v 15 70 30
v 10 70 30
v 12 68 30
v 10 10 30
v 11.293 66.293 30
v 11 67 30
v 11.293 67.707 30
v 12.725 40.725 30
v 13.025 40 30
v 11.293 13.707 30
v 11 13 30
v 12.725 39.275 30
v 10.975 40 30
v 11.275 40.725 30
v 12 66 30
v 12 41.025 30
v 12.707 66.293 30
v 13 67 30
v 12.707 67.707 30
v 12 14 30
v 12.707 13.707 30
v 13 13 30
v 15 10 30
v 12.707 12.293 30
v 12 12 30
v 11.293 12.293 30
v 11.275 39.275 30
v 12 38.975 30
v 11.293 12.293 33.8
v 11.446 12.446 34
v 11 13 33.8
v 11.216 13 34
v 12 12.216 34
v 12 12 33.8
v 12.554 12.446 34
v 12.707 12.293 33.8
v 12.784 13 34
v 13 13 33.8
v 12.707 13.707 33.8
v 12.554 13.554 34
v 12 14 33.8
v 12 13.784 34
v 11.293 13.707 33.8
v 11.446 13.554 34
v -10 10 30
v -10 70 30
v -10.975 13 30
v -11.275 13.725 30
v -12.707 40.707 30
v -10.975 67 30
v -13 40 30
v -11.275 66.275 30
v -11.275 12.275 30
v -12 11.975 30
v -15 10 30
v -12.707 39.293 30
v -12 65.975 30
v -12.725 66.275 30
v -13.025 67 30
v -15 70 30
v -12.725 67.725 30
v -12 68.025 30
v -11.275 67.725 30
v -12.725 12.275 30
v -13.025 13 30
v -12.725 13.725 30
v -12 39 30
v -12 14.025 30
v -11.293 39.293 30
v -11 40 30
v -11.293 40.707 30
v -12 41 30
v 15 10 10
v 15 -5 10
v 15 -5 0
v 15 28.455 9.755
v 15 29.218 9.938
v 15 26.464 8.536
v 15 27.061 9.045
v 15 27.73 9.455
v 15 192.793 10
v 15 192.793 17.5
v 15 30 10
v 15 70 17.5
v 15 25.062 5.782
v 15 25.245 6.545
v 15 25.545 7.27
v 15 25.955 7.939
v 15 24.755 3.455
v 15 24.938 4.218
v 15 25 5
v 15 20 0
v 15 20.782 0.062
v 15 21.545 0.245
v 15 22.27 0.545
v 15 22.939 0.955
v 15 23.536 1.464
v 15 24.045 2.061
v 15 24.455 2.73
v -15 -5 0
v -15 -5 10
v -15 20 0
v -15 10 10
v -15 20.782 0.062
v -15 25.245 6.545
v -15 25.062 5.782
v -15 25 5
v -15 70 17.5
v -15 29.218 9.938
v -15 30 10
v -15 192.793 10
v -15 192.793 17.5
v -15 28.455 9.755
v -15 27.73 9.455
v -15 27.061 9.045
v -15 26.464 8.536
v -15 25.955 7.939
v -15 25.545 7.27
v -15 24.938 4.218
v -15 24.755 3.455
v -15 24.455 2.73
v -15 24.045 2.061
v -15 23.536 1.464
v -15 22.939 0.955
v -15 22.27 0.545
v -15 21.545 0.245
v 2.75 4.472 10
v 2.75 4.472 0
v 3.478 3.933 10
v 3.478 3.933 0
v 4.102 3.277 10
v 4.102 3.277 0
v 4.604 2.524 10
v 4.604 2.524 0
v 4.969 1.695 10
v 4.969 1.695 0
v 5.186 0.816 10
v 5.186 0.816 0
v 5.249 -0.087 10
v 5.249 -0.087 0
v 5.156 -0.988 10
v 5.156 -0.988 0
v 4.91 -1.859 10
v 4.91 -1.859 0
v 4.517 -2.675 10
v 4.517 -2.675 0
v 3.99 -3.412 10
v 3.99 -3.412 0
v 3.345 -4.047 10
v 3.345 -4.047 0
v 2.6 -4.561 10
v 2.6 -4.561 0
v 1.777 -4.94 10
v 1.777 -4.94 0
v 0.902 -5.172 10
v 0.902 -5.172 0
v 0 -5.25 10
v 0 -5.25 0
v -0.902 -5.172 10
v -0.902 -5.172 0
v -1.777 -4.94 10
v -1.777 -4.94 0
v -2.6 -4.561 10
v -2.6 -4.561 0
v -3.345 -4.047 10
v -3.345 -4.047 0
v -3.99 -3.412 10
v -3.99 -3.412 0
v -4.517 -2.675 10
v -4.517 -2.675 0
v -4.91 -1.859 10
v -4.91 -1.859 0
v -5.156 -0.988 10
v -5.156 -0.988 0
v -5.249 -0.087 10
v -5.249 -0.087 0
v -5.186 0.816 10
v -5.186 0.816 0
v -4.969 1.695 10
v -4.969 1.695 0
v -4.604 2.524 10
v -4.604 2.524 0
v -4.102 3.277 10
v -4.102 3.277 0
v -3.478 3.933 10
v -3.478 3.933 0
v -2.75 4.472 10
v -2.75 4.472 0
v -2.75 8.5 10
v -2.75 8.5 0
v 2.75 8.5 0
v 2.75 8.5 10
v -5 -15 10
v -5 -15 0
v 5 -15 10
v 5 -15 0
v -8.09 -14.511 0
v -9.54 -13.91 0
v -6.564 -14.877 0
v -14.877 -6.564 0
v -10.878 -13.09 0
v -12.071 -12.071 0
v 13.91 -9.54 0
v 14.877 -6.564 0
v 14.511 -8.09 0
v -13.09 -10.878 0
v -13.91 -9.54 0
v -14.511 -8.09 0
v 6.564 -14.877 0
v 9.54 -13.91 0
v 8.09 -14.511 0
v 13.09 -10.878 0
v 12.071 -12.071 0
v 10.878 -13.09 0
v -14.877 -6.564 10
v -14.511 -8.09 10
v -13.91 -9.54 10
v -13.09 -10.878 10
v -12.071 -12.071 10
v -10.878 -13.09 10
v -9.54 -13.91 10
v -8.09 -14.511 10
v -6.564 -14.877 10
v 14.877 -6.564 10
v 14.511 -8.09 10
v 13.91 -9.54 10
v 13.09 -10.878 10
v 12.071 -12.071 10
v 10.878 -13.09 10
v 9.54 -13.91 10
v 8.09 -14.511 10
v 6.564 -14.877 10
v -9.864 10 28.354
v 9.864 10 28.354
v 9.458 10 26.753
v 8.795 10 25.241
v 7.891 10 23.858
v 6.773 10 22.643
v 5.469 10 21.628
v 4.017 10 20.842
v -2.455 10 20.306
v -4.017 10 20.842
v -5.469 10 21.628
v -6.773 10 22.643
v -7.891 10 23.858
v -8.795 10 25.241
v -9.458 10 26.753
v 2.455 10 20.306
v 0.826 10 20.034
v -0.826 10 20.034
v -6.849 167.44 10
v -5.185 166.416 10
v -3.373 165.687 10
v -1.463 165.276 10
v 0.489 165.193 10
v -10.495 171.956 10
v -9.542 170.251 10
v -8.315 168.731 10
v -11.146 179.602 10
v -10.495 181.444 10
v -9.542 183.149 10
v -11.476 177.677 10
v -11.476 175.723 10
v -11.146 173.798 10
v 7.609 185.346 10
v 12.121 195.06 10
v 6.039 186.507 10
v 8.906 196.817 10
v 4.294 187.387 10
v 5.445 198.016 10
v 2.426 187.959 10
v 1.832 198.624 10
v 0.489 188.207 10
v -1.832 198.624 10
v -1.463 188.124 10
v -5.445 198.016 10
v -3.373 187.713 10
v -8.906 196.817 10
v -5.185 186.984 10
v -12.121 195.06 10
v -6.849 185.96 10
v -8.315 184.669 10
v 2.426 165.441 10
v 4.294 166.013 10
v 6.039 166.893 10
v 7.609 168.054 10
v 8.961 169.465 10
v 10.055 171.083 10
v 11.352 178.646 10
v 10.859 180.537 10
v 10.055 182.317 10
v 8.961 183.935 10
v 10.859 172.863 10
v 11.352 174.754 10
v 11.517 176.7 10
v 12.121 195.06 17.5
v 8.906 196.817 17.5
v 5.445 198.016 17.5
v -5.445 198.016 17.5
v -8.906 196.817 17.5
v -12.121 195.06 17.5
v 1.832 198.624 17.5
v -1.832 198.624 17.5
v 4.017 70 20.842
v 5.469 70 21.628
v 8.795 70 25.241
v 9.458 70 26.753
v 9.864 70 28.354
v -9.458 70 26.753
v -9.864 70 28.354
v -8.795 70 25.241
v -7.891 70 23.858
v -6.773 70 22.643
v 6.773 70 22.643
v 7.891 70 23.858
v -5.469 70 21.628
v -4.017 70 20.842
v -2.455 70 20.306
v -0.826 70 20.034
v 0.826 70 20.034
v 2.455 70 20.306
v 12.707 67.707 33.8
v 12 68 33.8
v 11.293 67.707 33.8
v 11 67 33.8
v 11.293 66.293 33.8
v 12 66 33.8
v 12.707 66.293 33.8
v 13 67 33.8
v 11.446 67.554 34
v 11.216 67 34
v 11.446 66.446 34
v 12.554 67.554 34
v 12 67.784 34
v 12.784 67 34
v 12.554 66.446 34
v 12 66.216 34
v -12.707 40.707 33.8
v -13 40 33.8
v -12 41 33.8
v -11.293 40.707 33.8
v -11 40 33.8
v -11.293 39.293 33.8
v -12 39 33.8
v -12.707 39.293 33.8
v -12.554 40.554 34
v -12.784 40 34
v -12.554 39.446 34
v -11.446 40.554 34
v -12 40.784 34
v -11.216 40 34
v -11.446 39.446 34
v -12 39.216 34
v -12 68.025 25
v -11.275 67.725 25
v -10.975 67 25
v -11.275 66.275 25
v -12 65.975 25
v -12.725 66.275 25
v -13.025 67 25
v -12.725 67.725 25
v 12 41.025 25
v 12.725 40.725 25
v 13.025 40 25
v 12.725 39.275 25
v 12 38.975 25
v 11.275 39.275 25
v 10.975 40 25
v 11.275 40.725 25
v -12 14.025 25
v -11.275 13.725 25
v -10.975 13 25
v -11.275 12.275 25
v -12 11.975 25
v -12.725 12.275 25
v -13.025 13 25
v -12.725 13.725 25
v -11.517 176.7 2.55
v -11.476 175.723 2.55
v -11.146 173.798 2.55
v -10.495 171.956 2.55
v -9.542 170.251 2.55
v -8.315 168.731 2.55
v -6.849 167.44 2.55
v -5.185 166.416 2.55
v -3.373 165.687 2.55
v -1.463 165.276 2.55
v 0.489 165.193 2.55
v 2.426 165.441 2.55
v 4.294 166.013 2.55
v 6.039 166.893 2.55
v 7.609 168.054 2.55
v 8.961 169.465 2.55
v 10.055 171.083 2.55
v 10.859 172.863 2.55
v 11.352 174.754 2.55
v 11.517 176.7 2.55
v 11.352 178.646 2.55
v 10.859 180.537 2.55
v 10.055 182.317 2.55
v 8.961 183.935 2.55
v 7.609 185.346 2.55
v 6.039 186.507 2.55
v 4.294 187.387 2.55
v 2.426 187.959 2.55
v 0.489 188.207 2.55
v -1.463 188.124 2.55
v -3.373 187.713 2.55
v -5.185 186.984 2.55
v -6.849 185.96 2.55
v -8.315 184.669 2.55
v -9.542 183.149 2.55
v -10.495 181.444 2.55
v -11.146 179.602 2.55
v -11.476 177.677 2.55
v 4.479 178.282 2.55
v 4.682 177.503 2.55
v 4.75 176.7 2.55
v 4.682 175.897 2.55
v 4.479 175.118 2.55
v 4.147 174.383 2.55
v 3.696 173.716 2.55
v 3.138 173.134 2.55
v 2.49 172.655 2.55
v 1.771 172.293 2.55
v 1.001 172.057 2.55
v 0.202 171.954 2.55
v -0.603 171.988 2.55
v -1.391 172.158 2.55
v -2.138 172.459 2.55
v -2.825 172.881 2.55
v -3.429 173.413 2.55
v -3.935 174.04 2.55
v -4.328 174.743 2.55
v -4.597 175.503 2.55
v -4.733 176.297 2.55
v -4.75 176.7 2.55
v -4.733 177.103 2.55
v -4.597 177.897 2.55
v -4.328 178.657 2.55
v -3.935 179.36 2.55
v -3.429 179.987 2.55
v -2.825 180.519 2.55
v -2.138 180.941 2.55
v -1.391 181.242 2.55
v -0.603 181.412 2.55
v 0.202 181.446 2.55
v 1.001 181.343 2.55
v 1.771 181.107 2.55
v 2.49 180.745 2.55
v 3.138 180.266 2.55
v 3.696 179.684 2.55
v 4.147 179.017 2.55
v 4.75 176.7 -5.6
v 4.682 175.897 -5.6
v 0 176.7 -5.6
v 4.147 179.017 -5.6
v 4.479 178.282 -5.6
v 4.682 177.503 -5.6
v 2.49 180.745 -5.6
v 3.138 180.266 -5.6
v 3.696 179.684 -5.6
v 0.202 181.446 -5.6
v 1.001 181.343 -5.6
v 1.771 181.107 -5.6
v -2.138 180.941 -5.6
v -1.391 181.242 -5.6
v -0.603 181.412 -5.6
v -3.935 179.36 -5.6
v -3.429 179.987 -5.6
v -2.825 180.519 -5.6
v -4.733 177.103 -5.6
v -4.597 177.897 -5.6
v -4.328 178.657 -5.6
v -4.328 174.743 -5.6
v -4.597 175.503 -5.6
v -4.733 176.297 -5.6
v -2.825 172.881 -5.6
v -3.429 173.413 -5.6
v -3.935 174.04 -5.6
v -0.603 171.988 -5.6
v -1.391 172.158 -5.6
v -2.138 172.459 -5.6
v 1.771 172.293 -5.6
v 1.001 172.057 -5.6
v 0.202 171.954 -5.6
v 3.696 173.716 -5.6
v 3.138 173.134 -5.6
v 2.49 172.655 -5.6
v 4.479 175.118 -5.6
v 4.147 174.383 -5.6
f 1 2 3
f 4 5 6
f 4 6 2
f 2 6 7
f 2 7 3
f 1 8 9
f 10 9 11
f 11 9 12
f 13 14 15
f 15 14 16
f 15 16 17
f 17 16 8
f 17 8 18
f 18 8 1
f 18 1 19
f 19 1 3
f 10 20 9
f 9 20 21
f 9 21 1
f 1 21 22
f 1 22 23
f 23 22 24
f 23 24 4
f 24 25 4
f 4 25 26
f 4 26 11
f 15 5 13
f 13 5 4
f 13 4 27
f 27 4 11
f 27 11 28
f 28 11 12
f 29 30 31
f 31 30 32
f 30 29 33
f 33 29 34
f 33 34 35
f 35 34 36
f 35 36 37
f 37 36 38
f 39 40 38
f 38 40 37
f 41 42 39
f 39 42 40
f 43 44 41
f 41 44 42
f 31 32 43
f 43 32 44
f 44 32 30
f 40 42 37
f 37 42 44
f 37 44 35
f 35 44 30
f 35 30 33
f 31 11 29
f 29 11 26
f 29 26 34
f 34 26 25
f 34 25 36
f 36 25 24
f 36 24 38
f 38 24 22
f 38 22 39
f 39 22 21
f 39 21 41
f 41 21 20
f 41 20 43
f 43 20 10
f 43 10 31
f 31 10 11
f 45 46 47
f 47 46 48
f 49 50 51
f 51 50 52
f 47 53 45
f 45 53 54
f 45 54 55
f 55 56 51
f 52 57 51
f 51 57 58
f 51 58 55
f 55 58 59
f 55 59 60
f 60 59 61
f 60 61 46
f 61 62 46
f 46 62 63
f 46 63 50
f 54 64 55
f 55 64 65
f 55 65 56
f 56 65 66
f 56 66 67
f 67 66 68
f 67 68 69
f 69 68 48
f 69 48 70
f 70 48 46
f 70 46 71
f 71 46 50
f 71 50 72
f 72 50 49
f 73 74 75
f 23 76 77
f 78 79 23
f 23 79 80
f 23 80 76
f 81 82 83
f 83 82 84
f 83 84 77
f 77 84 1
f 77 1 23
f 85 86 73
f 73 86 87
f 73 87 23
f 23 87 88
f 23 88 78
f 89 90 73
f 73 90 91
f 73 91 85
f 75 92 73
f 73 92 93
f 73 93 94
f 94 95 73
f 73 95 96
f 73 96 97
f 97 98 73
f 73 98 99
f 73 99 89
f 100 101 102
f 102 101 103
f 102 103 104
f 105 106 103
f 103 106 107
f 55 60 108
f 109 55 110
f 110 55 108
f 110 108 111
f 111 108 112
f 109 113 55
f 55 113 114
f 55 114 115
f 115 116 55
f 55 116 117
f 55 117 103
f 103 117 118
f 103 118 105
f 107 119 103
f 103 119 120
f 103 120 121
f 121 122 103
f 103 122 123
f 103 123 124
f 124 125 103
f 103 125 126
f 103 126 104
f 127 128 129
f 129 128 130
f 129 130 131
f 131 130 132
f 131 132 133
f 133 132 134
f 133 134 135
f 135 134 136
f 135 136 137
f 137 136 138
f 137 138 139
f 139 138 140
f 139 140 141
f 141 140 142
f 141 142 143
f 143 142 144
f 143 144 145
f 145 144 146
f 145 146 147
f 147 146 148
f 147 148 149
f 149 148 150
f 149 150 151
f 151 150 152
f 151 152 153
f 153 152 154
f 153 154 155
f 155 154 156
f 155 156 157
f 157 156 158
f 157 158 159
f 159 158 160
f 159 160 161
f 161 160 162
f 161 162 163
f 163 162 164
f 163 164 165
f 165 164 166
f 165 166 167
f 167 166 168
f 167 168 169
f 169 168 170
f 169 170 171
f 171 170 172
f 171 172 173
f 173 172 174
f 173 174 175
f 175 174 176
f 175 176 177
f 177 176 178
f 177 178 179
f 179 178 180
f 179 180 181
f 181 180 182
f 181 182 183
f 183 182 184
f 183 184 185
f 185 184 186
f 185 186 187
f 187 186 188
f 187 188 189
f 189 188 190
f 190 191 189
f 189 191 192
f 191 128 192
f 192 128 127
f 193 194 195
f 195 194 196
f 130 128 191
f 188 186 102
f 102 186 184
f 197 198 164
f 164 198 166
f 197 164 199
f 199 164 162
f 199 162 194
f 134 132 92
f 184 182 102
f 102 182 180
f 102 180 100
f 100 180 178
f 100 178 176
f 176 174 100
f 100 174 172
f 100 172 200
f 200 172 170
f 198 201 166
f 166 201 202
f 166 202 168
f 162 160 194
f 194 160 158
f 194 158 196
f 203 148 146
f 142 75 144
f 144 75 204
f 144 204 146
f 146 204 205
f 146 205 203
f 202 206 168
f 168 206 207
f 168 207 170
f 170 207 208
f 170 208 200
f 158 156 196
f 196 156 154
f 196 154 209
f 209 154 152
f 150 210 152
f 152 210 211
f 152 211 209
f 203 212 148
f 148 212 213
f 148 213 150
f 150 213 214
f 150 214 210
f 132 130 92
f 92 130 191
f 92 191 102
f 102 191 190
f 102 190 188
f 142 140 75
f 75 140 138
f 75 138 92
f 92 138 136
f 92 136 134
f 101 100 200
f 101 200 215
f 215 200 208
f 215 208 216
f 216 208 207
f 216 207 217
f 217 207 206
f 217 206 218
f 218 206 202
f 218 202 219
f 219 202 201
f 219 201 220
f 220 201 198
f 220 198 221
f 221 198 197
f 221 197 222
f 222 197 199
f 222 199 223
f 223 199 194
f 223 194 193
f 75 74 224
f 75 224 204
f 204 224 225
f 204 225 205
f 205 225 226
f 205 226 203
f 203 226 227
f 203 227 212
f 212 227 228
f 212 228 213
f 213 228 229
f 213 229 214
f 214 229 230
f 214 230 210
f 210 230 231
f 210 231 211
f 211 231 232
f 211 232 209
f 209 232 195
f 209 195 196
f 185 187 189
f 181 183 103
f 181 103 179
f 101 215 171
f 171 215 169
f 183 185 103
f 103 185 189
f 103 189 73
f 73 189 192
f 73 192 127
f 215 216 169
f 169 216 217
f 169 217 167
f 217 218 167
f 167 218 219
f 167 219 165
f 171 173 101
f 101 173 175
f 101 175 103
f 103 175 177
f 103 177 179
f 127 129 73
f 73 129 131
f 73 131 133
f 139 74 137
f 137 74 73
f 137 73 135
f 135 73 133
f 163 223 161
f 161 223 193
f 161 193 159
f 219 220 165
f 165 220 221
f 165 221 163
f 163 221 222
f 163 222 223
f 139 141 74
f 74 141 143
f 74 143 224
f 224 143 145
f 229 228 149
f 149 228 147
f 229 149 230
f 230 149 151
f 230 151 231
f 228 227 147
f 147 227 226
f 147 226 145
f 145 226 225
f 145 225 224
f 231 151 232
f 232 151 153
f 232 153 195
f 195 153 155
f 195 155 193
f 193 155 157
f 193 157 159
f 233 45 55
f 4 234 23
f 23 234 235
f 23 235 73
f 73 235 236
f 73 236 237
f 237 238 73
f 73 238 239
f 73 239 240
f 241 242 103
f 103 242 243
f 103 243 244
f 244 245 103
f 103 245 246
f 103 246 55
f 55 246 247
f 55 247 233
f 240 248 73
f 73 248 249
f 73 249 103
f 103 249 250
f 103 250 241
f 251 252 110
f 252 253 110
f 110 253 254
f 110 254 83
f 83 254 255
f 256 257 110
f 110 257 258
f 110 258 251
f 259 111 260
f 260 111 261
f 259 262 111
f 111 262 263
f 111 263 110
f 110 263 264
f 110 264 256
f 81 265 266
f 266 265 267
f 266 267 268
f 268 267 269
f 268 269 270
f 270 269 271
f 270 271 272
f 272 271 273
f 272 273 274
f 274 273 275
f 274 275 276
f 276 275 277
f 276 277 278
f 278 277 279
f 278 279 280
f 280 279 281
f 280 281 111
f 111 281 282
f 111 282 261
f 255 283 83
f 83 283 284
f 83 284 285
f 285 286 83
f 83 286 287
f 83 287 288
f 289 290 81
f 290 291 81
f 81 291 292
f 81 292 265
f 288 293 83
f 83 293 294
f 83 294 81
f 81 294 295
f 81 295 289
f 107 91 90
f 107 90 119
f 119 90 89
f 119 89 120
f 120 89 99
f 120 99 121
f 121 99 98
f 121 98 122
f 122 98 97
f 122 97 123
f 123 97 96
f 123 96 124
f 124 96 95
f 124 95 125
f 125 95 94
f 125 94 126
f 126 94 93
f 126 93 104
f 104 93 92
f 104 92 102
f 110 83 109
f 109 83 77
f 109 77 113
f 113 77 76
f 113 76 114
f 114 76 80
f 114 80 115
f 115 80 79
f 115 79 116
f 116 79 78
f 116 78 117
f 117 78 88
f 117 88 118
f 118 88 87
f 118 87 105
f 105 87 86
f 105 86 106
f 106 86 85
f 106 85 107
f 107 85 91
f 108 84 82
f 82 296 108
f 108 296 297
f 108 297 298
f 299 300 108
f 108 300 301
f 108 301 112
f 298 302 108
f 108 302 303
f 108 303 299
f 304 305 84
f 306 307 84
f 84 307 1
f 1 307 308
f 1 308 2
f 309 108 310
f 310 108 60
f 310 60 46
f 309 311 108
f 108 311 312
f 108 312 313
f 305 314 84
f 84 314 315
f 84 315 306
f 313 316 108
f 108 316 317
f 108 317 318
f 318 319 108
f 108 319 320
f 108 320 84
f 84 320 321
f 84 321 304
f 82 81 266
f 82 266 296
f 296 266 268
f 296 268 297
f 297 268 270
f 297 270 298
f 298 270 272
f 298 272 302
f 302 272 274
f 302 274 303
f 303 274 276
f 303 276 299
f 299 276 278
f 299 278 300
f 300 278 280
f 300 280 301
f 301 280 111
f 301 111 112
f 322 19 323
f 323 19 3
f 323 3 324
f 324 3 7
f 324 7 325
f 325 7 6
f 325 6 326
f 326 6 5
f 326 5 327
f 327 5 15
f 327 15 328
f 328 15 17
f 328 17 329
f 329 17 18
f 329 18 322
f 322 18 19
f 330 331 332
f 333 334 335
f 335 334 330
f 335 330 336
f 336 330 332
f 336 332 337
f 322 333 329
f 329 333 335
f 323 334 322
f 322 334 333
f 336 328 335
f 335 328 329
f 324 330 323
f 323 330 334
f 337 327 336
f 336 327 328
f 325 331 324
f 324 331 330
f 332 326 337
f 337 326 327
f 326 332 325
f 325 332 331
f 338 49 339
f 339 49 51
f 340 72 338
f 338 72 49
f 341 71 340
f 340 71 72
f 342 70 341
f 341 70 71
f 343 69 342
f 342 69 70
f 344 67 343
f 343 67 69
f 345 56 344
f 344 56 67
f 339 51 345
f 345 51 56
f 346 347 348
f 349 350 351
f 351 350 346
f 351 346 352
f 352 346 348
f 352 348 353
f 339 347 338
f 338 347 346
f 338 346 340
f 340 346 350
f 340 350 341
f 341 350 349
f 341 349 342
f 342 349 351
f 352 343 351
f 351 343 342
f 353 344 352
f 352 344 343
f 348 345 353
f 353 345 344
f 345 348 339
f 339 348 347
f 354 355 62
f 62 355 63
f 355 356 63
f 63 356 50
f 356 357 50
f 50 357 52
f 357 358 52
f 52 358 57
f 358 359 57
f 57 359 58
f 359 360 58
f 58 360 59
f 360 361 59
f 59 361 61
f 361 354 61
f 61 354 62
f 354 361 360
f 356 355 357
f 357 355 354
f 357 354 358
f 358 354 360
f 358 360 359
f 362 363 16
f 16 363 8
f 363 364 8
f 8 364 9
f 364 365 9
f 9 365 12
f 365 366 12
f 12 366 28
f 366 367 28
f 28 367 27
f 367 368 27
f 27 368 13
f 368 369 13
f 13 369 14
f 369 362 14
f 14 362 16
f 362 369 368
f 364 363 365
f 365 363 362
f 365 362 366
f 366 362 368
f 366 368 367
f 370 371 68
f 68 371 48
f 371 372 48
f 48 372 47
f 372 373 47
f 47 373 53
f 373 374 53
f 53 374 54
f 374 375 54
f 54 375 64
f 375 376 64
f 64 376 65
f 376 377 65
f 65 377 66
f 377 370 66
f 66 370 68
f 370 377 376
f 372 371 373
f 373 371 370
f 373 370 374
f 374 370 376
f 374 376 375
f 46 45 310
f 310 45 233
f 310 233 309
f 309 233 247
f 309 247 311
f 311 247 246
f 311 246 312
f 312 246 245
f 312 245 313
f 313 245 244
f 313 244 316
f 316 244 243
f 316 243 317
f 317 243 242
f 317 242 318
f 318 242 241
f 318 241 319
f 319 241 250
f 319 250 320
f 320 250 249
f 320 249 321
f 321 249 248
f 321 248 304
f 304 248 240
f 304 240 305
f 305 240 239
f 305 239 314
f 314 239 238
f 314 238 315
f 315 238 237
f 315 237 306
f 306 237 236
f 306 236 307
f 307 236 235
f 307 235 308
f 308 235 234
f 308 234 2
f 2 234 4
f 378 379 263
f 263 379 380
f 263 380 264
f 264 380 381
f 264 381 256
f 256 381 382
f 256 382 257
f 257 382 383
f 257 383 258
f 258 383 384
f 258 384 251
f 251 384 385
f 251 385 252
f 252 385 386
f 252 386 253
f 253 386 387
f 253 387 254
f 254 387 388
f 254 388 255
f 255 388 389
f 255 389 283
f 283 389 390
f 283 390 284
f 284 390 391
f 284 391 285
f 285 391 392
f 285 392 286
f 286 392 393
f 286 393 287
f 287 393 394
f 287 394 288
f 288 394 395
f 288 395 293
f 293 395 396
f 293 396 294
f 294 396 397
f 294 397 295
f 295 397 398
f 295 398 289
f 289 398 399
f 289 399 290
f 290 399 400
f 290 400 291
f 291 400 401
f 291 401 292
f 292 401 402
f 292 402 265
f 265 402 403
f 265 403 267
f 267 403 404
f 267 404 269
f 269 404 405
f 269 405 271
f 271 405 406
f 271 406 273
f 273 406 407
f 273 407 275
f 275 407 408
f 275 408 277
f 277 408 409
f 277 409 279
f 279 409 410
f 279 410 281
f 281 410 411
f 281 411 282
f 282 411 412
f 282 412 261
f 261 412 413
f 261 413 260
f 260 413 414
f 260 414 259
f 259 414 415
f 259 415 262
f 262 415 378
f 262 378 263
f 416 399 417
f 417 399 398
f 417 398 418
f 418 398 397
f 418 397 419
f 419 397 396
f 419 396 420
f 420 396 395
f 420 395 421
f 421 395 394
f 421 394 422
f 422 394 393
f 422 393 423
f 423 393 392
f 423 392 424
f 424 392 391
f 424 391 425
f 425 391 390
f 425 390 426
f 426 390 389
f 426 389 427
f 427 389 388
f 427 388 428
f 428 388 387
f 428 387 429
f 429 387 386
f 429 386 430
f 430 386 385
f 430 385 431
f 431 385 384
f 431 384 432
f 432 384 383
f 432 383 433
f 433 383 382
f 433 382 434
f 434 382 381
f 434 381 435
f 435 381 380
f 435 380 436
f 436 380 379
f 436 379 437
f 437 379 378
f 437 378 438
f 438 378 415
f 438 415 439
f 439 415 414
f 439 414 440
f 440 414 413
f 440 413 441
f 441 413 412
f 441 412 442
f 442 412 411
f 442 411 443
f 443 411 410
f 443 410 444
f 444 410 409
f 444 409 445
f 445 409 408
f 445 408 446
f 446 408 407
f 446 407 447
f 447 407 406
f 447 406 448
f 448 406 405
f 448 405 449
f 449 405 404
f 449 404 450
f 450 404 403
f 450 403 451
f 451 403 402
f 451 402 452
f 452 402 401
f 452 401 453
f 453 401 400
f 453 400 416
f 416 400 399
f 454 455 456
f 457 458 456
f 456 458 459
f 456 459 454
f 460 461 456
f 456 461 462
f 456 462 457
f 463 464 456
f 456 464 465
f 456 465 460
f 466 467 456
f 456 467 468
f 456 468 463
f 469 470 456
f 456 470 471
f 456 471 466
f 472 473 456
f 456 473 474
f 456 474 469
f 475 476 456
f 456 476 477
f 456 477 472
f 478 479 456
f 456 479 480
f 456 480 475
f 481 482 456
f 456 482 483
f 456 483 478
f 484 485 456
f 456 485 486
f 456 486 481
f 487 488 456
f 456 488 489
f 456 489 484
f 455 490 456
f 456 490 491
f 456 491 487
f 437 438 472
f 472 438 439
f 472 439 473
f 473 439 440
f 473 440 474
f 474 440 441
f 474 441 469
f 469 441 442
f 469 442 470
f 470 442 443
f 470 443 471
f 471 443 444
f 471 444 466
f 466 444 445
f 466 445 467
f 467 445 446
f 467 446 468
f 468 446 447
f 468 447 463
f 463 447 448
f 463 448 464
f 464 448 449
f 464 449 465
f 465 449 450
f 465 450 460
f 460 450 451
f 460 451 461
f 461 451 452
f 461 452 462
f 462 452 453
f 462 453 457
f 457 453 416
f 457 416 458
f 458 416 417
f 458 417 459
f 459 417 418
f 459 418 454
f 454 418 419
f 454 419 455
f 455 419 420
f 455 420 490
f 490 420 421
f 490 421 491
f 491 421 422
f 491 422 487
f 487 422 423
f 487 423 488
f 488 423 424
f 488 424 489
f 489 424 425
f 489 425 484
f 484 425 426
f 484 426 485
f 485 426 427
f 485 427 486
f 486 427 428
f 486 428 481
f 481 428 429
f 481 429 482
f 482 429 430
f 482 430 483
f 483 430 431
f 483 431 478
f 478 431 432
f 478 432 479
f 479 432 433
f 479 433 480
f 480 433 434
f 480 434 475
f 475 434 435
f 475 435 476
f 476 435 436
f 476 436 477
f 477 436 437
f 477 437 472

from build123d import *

# Parameters (mm, degrees)
SKETCH2_W                  = 30
SKETCH2_H                  = 30
BOSS_EXTRUDE1_DEPTH        = 60
FILLET1_R                  = 10
SKETCH3_W                  = 40
SKETCH3_H                  = 25
CUT_EXTRUDE1_DEPTH         = 69.738635424
SKETCH6_W                  = 30
SKETCH6_H                  = 40
BOSS_EXTRUDE2_DEPTH        = 125
SKETCH7_W                  = 30
SKETCH7_H                  = 10
BOSS_EXTRUDE3_DEPTH        = 10
FILLET2_START              = -16
FILLET2_DEPTH              = 32
FILLET2_START_2            = -15
FILLET2_2_DEPTH            = 30
SKETCH8_W                  = 25
SKETCH8_H                  = 70
CUT_EXTRUDE2_DEPTH         = 156.241746963
SKETCH12_W                 = 30
SKETCH12_H                 = 7.5
BOSS_EXTRUDE4_DEPTH        = 65
SKETCH13_W                 = 20
SKETCH13_H                 = 54
CUT_EXTRUDE6_DEPTH         = 6
SKETCH20_R                 = 4.75
AXIS_BASE_DEPTH            = 49.6
CUT_EXTRUDE8_DEPTH         = 212.541958013
CUT_EXTRUDE8_DEPTH_BACK    = 212.541958013
SKETCH19_R                 = 2.5
SKETCH19_W                 = 20
SKETCH19_H                 = 42
CUT_EXTRUDE7_DEPTH         = 26.5
MAKE_HALF_DEPTH            = 225.175347112
ONE_MALE_JACK_DEPTH        = 4
CHAMFER1_SIZE              = 0.2
LPATTERN1_COUNT            = 2
LPATTERN1_PITCH            = 24
LPATTERN1_COUNT_DIR2       = 3
LPATTERN1_PITCH_DIR2       = 27
CHAMFER1_OF_LPATTERN1_SIZE = 0.2
ONE_FEMALE_JACK_DEPTH      = 5
FEMALE_JACKS_COUNT         = 2
FEMALE_JACKS_PITCH         = 24
FEMALE_JACKS_COUNT_DIR2    = 3
FEMALE_JACKS_PITCH_DIR2    = 27
SKETCH26_R                 = 10
MAKE_LIGHER_DEPTH          = 60
SKETCH27_R                 = 11.517379081
BOSS_EXTRUDE5_DEPTH        = 7.45


with BuildPart() as part:
    # Sketch2 → Boss-Extrude1 (new body)
    with BuildSketch(Plane.XY):
        Rectangle(SKETCH2_W, SKETCH2_H)
        with BuildLine():
            ThreePointArc((5.25, 0), (-2.561737691, -4.582575695), (-2.75, 4.472135955))
            Line((-2.75, 4.472135955), (-2.75, 8.5))
            Line((-2.75, 8.5), (0, 8.5))
            Line((0, 8.5), (2.75, 8.5))
            Line((2.75, 8.5), (2.75, 4.472135955))
            ThreePointArc((2.75, 4.472135955), (4.582575695, 2.561737691), (5.25, 0))
        make_face(mode=Mode.SUBTRACT)
    extrude(amount=BOSS_EXTRUDE1_DEPTH)

    # Fillet1
    fillet1_edges = [part.edges().sort_by_distance(p)[0] for p in [
        (15, -15, 30),
        (-15, -15, 30),
    ]]
    fillet(fillet1_edges, radius=FILLET1_R)

    # Sketch3 → Cut-Extrude1 (cut, through all)
    with BuildSketch(Plane.ZY.offset(15)):
        with Locations((30, -2.5)):
            Rectangle(SKETCH3_W, SKETCH3_H)
    extrude(amount=-CUT_EXTRUDE1_DEPTH, mode=Mode.SUBTRACT)

    # Sketch6 → Boss-Extrude2 (add)
    with BuildSketch(Plane(origin=(0, 15, 0), x_dir=(1, 0, 0), z_dir=(0, 1, 0))):
        with Locations((0, -30)):
            Rectangle(SKETCH6_W, SKETCH6_H)
    extrude(amount=BOSS_EXTRUDE2_DEPTH)

    # Sketch7 → Boss-Extrude3 (add)
    with BuildSketch(Plane(origin=(0, 15, 0), x_dir=(1, 0, 0), z_dir=(0, 1, 0))):
        with Locations((0, -5)):
            Rectangle(SKETCH7_W, SKETCH7_H)
        with Locations((0, -55)):
            Rectangle(SKETCH7_W, SKETCH7_H)
    extrude(amount=BOSS_EXTRUDE3_DEPTH)

    # Fillet2: read off the stored shape, not the designer's step
    # Fillet2 outline → Fillet2 (cut)
    with BuildSketch(Plane.YZ.offset(FILLET2_START)):
        with BuildLine():
            ThreePointArc((25, 5), (23.535533906, 1.464466094), (20, 0))
            Line((20, 0), (25, 0))
            Line((25, 0), (25, 5))
        make_face()
        with BuildLine():
            Line((25, 60), (20, 60))
            ThreePointArc((20, 60), (23.535533906, 58.535533906), (25, 55))
            Line((25, 55), (25, 60))
        make_face()
    extrude(amount=FILLET2_DEPTH, mode=Mode.SUBTRACT)

    # Fillet2 2 outline → Fillet2 2 (add)
    with BuildSketch(Plane.YZ.offset(FILLET2_START_2)):
        with BuildLine():
            Line((25, 10), (25, 5))
            ThreePointArc((25, 5), (26.464466094, 8.535533906), (30, 10))
            Line((30, 10), (25, 10))
        make_face()
        with BuildLine():
            ThreePointArc((30, 50), (26.464466094, 51.464466094), (25, 55))
            Line((25, 55), (25, 50))
            Line((25, 50), (30, 50))
        make_face()
    extrude(amount=FILLET2_2_DEPTH)

    # Sketch8 → Cut-Extrude2 (cut, through all)
    with BuildSketch(Plane(origin=(15, 0, 0), x_dir=(0, 0, -1), z_dir=(1, 0, 0))):
        with Locations((-30, 105)):
            Rectangle(SKETCH8_W, SKETCH8_H)
    extrude(amount=-CUT_EXTRUDE2_DEPTH, mode=Mode.SUBTRACT)

    # Sketch12 → Boss-Extrude4 (add)
    with BuildSketch(Plane(origin=(0, 140, 0), x_dir=(1, 0, 0), z_dir=(0, 1, 0))):
        with Locations((0, -13.75)):
            Rectangle(SKETCH12_W, SKETCH12_H)
        with Locations((0, -46.25)):
            Rectangle(SKETCH12_W, SKETCH12_H)
    extrude(amount=BOSS_EXTRUDE4_DEPTH)

    # Sketch13 → Cut-Extrude6 (cut)
    with BuildSketch(Plane.XY.offset(50)):
        with Locations((0, 168)):
            Rectangle(SKETCH13_W, SKETCH13_H)
    extrude(amount=-CUT_EXTRUDE6_DEPTH, mode=Mode.SUBTRACT)

    # Sketch20 → Axis Base (add)
    with BuildSketch(Plane.XY.offset(44)):
        with Locations(Location((0, 176.7, 0), (0, 0, 90))):
            Circle(SKETCH20_R)
    extrude(amount=-AXIS_BASE_DEPTH)

    # Sketch23 → Cut-Extrude8 (cut, two sides: drawn at the far end of the back side and taken through both)
    with BuildSketch(Plane(origin=(0, 0, 10), x_dir=(-1, 0, 0), z_dir=(0, 0, -1)).offset(-CUT_EXTRUDE8_DEPTH_BACK)):
        with BuildLine():
            Line((-15, 192.793476939), (-15, 205))
            Line((-15, 205), (15, 205))
            Line((15, 205), (15, 192.793476939))
            ThreePointArc((15, 192.793476939), (0, 198.7), (-15, 192.793476939))
        make_face()
    extrude(amount=CUT_EXTRUDE8_DEPTH + CUT_EXTRUDE8_DEPTH_BACK, mode=Mode.SUBTRACT)

    # Sketch19 → Cut-Extrude7 (cut)
    with BuildSketch(Plane.XY.offset(44)):
        with Locations((-5.12, 192)):
            Circle(SKETCH19_R)
        with Locations(Location((5.12, 192, 0), (0, 0, 270))):
            Circle(SKETCH19_R)
        with Locations((5.12, 144)):
            Circle(SKETCH19_R)
        with Locations(Location((-5.12, 144, 0), (0, 0, 270))):
            Circle(SKETCH19_R)
        with Locations((0, 168)):
            Rectangle(SKETCH19_W, SKETCH19_H)
    extrude(amount=-CUT_EXTRUDE7_DEPTH, mode=Mode.SUBTRACT)

    # 3DSketch2 → Make Half (cut, through all)
    with BuildSketch(Plane(origin=(-16.97773478, -20.308334844, 30), x_dir=(0.14055892995616934, 0.9900723141314359, 0), z_dir=(0, 0, 1))):
        Polygon((0, 0), (4.55547701, -32.087976668), (230.577525736, 0), (226.022048726, 32.087976668), align=None)
    extrude(amount=MAKE_HALF_DEPTH, mode=Mode.SUBTRACT)

    # Sketch24 → One Male Jack (add)
    with BuildSketch(Plane.XY.offset(30)):
        Polygon((12, 68), (11.292893219, 67.707106781), (11, 67), (11.292893219, 66.292893219), (12, 66), (12.707106781, 66.292893219), (13, 67), (12.707106781, 67.707106781), align=None)
    one_male_jack = extrude(amount=ONE_MALE_JACK_DEPTH)

    # Chamfer1
    chamfer1_edges = [part.edges().sort_by_distance(p)[0] for p in [
        (12.353553391, 67.853553391, 34),
        (11.646446609, 67.853553391, 34),
        (11.146446609, 67.353553391, 34),
        (11.146446609, 66.646446609, 34),
        (11.646446609, 66.146446609, 34),
        (12.353553391, 66.146446609, 34),
        (12.853553391, 66.646446609, 34),
        (12.853553391, 67.353553391, 34),
    ]]
    chamfer(chamfer1_edges, length=CHAMFER1_SIZE)

    # LPattern1: One Male Jack 2 × 3, 3 skipped
    with Locations(*[(-i * LPATTERN1_PITCH, -j * LPATTERN1_PITCH_DIR2, 0) for i in range(LPATTERN1_COUNT) for j in range(LPATTERN1_COUNT_DIR2) if (i, j) not in ((0, 0), (0, 1), (1, 0), (1, 2))]):
        add(one_male_jack)

    # Chamfer1 of LPattern1
    chamfer1_of_lpattern1_edges = [part.edges().sort_by_distance(p)[0] for p in [
        (12.353553391, 13.853553391, 34),
        (11.646446609, 13.853553391, 34),
        (11.146446609, 13.353553391, 34),
        (11.146446609, 12.646446609, 34),
        (11.646446609, 12.146446609, 34),
        (12.353553391, 12.146446609, 34),
        (12.853553391, 12.646446609, 34),
        (12.853553391, 13.353553391, 34),
        (-11.646446609, 40.853553391, 34),
        (-12.353553391, 40.853553391, 34),
        (-12.853553391, 40.353553391, 34),
        (-12.853553391, 39.646446609, 34),
        (-12.353553391, 39.146446609, 34),
        (-11.646446609, 39.146446609, 34),
        (-11.146446609, 39.646446609, 34),
        (-11.146446609, 40.353553391, 34),
    ]]
    chamfer(chamfer1_of_lpattern1_edges, length=CHAMFER1_OF_LPATTERN1_SIZE)

    # Sketch25 → One Female Jack (cut)
    with BuildSketch(Plane.XY.offset(30)):
        Polygon((-12, 68.025), (-12.724784451, 67.724784451), (-13.025, 67), (-12.724784451, 66.275215549), (-12, 65.975), (-11.275215549, 66.275215549), (-10.975, 67), (-11.275215549, 67.724784451), align=None)
    one_female_jack = extrude(amount=-ONE_FEMALE_JACK_DEPTH, mode=Mode.SUBTRACT)

    # Female Jacks: One Female Jack 2 × 3, 3 skipped
    with Locations(*[(i * FEMALE_JACKS_PITCH, -j * FEMALE_JACKS_PITCH_DIR2, 0) for i in range(FEMALE_JACKS_COUNT) for j in range(FEMALE_JACKS_COUNT_DIR2) if (i, j) not in ((0, 0), (0, 1), (1, 0), (1, 2))]):
        add(one_female_jack, mode=Mode.SUBTRACT)

    # Sketch26 → Make Ligher (cut)
    with BuildSketch(Plane.XZ.offset(-10)):
        with Locations((0, 30)):
            Circle(SKETCH26_R)
    extrude(amount=-MAKE_LIGHER_DEPTH, mode=Mode.SUBTRACT)

    # Sketch27 → Boss-Extrude5 (add)
    with BuildSketch(Plane(origin=(0, 0, 10), x_dir=(-1, 0, 0), z_dir=(0, 0, -1))):
        with Locations(Location((0, 176.7, 0), (0, 0, 180))):
            Circle(SKETCH27_R)
    extrude(amount=BOSS_EXTRUDE5_DEPTH)


solid = part.part
